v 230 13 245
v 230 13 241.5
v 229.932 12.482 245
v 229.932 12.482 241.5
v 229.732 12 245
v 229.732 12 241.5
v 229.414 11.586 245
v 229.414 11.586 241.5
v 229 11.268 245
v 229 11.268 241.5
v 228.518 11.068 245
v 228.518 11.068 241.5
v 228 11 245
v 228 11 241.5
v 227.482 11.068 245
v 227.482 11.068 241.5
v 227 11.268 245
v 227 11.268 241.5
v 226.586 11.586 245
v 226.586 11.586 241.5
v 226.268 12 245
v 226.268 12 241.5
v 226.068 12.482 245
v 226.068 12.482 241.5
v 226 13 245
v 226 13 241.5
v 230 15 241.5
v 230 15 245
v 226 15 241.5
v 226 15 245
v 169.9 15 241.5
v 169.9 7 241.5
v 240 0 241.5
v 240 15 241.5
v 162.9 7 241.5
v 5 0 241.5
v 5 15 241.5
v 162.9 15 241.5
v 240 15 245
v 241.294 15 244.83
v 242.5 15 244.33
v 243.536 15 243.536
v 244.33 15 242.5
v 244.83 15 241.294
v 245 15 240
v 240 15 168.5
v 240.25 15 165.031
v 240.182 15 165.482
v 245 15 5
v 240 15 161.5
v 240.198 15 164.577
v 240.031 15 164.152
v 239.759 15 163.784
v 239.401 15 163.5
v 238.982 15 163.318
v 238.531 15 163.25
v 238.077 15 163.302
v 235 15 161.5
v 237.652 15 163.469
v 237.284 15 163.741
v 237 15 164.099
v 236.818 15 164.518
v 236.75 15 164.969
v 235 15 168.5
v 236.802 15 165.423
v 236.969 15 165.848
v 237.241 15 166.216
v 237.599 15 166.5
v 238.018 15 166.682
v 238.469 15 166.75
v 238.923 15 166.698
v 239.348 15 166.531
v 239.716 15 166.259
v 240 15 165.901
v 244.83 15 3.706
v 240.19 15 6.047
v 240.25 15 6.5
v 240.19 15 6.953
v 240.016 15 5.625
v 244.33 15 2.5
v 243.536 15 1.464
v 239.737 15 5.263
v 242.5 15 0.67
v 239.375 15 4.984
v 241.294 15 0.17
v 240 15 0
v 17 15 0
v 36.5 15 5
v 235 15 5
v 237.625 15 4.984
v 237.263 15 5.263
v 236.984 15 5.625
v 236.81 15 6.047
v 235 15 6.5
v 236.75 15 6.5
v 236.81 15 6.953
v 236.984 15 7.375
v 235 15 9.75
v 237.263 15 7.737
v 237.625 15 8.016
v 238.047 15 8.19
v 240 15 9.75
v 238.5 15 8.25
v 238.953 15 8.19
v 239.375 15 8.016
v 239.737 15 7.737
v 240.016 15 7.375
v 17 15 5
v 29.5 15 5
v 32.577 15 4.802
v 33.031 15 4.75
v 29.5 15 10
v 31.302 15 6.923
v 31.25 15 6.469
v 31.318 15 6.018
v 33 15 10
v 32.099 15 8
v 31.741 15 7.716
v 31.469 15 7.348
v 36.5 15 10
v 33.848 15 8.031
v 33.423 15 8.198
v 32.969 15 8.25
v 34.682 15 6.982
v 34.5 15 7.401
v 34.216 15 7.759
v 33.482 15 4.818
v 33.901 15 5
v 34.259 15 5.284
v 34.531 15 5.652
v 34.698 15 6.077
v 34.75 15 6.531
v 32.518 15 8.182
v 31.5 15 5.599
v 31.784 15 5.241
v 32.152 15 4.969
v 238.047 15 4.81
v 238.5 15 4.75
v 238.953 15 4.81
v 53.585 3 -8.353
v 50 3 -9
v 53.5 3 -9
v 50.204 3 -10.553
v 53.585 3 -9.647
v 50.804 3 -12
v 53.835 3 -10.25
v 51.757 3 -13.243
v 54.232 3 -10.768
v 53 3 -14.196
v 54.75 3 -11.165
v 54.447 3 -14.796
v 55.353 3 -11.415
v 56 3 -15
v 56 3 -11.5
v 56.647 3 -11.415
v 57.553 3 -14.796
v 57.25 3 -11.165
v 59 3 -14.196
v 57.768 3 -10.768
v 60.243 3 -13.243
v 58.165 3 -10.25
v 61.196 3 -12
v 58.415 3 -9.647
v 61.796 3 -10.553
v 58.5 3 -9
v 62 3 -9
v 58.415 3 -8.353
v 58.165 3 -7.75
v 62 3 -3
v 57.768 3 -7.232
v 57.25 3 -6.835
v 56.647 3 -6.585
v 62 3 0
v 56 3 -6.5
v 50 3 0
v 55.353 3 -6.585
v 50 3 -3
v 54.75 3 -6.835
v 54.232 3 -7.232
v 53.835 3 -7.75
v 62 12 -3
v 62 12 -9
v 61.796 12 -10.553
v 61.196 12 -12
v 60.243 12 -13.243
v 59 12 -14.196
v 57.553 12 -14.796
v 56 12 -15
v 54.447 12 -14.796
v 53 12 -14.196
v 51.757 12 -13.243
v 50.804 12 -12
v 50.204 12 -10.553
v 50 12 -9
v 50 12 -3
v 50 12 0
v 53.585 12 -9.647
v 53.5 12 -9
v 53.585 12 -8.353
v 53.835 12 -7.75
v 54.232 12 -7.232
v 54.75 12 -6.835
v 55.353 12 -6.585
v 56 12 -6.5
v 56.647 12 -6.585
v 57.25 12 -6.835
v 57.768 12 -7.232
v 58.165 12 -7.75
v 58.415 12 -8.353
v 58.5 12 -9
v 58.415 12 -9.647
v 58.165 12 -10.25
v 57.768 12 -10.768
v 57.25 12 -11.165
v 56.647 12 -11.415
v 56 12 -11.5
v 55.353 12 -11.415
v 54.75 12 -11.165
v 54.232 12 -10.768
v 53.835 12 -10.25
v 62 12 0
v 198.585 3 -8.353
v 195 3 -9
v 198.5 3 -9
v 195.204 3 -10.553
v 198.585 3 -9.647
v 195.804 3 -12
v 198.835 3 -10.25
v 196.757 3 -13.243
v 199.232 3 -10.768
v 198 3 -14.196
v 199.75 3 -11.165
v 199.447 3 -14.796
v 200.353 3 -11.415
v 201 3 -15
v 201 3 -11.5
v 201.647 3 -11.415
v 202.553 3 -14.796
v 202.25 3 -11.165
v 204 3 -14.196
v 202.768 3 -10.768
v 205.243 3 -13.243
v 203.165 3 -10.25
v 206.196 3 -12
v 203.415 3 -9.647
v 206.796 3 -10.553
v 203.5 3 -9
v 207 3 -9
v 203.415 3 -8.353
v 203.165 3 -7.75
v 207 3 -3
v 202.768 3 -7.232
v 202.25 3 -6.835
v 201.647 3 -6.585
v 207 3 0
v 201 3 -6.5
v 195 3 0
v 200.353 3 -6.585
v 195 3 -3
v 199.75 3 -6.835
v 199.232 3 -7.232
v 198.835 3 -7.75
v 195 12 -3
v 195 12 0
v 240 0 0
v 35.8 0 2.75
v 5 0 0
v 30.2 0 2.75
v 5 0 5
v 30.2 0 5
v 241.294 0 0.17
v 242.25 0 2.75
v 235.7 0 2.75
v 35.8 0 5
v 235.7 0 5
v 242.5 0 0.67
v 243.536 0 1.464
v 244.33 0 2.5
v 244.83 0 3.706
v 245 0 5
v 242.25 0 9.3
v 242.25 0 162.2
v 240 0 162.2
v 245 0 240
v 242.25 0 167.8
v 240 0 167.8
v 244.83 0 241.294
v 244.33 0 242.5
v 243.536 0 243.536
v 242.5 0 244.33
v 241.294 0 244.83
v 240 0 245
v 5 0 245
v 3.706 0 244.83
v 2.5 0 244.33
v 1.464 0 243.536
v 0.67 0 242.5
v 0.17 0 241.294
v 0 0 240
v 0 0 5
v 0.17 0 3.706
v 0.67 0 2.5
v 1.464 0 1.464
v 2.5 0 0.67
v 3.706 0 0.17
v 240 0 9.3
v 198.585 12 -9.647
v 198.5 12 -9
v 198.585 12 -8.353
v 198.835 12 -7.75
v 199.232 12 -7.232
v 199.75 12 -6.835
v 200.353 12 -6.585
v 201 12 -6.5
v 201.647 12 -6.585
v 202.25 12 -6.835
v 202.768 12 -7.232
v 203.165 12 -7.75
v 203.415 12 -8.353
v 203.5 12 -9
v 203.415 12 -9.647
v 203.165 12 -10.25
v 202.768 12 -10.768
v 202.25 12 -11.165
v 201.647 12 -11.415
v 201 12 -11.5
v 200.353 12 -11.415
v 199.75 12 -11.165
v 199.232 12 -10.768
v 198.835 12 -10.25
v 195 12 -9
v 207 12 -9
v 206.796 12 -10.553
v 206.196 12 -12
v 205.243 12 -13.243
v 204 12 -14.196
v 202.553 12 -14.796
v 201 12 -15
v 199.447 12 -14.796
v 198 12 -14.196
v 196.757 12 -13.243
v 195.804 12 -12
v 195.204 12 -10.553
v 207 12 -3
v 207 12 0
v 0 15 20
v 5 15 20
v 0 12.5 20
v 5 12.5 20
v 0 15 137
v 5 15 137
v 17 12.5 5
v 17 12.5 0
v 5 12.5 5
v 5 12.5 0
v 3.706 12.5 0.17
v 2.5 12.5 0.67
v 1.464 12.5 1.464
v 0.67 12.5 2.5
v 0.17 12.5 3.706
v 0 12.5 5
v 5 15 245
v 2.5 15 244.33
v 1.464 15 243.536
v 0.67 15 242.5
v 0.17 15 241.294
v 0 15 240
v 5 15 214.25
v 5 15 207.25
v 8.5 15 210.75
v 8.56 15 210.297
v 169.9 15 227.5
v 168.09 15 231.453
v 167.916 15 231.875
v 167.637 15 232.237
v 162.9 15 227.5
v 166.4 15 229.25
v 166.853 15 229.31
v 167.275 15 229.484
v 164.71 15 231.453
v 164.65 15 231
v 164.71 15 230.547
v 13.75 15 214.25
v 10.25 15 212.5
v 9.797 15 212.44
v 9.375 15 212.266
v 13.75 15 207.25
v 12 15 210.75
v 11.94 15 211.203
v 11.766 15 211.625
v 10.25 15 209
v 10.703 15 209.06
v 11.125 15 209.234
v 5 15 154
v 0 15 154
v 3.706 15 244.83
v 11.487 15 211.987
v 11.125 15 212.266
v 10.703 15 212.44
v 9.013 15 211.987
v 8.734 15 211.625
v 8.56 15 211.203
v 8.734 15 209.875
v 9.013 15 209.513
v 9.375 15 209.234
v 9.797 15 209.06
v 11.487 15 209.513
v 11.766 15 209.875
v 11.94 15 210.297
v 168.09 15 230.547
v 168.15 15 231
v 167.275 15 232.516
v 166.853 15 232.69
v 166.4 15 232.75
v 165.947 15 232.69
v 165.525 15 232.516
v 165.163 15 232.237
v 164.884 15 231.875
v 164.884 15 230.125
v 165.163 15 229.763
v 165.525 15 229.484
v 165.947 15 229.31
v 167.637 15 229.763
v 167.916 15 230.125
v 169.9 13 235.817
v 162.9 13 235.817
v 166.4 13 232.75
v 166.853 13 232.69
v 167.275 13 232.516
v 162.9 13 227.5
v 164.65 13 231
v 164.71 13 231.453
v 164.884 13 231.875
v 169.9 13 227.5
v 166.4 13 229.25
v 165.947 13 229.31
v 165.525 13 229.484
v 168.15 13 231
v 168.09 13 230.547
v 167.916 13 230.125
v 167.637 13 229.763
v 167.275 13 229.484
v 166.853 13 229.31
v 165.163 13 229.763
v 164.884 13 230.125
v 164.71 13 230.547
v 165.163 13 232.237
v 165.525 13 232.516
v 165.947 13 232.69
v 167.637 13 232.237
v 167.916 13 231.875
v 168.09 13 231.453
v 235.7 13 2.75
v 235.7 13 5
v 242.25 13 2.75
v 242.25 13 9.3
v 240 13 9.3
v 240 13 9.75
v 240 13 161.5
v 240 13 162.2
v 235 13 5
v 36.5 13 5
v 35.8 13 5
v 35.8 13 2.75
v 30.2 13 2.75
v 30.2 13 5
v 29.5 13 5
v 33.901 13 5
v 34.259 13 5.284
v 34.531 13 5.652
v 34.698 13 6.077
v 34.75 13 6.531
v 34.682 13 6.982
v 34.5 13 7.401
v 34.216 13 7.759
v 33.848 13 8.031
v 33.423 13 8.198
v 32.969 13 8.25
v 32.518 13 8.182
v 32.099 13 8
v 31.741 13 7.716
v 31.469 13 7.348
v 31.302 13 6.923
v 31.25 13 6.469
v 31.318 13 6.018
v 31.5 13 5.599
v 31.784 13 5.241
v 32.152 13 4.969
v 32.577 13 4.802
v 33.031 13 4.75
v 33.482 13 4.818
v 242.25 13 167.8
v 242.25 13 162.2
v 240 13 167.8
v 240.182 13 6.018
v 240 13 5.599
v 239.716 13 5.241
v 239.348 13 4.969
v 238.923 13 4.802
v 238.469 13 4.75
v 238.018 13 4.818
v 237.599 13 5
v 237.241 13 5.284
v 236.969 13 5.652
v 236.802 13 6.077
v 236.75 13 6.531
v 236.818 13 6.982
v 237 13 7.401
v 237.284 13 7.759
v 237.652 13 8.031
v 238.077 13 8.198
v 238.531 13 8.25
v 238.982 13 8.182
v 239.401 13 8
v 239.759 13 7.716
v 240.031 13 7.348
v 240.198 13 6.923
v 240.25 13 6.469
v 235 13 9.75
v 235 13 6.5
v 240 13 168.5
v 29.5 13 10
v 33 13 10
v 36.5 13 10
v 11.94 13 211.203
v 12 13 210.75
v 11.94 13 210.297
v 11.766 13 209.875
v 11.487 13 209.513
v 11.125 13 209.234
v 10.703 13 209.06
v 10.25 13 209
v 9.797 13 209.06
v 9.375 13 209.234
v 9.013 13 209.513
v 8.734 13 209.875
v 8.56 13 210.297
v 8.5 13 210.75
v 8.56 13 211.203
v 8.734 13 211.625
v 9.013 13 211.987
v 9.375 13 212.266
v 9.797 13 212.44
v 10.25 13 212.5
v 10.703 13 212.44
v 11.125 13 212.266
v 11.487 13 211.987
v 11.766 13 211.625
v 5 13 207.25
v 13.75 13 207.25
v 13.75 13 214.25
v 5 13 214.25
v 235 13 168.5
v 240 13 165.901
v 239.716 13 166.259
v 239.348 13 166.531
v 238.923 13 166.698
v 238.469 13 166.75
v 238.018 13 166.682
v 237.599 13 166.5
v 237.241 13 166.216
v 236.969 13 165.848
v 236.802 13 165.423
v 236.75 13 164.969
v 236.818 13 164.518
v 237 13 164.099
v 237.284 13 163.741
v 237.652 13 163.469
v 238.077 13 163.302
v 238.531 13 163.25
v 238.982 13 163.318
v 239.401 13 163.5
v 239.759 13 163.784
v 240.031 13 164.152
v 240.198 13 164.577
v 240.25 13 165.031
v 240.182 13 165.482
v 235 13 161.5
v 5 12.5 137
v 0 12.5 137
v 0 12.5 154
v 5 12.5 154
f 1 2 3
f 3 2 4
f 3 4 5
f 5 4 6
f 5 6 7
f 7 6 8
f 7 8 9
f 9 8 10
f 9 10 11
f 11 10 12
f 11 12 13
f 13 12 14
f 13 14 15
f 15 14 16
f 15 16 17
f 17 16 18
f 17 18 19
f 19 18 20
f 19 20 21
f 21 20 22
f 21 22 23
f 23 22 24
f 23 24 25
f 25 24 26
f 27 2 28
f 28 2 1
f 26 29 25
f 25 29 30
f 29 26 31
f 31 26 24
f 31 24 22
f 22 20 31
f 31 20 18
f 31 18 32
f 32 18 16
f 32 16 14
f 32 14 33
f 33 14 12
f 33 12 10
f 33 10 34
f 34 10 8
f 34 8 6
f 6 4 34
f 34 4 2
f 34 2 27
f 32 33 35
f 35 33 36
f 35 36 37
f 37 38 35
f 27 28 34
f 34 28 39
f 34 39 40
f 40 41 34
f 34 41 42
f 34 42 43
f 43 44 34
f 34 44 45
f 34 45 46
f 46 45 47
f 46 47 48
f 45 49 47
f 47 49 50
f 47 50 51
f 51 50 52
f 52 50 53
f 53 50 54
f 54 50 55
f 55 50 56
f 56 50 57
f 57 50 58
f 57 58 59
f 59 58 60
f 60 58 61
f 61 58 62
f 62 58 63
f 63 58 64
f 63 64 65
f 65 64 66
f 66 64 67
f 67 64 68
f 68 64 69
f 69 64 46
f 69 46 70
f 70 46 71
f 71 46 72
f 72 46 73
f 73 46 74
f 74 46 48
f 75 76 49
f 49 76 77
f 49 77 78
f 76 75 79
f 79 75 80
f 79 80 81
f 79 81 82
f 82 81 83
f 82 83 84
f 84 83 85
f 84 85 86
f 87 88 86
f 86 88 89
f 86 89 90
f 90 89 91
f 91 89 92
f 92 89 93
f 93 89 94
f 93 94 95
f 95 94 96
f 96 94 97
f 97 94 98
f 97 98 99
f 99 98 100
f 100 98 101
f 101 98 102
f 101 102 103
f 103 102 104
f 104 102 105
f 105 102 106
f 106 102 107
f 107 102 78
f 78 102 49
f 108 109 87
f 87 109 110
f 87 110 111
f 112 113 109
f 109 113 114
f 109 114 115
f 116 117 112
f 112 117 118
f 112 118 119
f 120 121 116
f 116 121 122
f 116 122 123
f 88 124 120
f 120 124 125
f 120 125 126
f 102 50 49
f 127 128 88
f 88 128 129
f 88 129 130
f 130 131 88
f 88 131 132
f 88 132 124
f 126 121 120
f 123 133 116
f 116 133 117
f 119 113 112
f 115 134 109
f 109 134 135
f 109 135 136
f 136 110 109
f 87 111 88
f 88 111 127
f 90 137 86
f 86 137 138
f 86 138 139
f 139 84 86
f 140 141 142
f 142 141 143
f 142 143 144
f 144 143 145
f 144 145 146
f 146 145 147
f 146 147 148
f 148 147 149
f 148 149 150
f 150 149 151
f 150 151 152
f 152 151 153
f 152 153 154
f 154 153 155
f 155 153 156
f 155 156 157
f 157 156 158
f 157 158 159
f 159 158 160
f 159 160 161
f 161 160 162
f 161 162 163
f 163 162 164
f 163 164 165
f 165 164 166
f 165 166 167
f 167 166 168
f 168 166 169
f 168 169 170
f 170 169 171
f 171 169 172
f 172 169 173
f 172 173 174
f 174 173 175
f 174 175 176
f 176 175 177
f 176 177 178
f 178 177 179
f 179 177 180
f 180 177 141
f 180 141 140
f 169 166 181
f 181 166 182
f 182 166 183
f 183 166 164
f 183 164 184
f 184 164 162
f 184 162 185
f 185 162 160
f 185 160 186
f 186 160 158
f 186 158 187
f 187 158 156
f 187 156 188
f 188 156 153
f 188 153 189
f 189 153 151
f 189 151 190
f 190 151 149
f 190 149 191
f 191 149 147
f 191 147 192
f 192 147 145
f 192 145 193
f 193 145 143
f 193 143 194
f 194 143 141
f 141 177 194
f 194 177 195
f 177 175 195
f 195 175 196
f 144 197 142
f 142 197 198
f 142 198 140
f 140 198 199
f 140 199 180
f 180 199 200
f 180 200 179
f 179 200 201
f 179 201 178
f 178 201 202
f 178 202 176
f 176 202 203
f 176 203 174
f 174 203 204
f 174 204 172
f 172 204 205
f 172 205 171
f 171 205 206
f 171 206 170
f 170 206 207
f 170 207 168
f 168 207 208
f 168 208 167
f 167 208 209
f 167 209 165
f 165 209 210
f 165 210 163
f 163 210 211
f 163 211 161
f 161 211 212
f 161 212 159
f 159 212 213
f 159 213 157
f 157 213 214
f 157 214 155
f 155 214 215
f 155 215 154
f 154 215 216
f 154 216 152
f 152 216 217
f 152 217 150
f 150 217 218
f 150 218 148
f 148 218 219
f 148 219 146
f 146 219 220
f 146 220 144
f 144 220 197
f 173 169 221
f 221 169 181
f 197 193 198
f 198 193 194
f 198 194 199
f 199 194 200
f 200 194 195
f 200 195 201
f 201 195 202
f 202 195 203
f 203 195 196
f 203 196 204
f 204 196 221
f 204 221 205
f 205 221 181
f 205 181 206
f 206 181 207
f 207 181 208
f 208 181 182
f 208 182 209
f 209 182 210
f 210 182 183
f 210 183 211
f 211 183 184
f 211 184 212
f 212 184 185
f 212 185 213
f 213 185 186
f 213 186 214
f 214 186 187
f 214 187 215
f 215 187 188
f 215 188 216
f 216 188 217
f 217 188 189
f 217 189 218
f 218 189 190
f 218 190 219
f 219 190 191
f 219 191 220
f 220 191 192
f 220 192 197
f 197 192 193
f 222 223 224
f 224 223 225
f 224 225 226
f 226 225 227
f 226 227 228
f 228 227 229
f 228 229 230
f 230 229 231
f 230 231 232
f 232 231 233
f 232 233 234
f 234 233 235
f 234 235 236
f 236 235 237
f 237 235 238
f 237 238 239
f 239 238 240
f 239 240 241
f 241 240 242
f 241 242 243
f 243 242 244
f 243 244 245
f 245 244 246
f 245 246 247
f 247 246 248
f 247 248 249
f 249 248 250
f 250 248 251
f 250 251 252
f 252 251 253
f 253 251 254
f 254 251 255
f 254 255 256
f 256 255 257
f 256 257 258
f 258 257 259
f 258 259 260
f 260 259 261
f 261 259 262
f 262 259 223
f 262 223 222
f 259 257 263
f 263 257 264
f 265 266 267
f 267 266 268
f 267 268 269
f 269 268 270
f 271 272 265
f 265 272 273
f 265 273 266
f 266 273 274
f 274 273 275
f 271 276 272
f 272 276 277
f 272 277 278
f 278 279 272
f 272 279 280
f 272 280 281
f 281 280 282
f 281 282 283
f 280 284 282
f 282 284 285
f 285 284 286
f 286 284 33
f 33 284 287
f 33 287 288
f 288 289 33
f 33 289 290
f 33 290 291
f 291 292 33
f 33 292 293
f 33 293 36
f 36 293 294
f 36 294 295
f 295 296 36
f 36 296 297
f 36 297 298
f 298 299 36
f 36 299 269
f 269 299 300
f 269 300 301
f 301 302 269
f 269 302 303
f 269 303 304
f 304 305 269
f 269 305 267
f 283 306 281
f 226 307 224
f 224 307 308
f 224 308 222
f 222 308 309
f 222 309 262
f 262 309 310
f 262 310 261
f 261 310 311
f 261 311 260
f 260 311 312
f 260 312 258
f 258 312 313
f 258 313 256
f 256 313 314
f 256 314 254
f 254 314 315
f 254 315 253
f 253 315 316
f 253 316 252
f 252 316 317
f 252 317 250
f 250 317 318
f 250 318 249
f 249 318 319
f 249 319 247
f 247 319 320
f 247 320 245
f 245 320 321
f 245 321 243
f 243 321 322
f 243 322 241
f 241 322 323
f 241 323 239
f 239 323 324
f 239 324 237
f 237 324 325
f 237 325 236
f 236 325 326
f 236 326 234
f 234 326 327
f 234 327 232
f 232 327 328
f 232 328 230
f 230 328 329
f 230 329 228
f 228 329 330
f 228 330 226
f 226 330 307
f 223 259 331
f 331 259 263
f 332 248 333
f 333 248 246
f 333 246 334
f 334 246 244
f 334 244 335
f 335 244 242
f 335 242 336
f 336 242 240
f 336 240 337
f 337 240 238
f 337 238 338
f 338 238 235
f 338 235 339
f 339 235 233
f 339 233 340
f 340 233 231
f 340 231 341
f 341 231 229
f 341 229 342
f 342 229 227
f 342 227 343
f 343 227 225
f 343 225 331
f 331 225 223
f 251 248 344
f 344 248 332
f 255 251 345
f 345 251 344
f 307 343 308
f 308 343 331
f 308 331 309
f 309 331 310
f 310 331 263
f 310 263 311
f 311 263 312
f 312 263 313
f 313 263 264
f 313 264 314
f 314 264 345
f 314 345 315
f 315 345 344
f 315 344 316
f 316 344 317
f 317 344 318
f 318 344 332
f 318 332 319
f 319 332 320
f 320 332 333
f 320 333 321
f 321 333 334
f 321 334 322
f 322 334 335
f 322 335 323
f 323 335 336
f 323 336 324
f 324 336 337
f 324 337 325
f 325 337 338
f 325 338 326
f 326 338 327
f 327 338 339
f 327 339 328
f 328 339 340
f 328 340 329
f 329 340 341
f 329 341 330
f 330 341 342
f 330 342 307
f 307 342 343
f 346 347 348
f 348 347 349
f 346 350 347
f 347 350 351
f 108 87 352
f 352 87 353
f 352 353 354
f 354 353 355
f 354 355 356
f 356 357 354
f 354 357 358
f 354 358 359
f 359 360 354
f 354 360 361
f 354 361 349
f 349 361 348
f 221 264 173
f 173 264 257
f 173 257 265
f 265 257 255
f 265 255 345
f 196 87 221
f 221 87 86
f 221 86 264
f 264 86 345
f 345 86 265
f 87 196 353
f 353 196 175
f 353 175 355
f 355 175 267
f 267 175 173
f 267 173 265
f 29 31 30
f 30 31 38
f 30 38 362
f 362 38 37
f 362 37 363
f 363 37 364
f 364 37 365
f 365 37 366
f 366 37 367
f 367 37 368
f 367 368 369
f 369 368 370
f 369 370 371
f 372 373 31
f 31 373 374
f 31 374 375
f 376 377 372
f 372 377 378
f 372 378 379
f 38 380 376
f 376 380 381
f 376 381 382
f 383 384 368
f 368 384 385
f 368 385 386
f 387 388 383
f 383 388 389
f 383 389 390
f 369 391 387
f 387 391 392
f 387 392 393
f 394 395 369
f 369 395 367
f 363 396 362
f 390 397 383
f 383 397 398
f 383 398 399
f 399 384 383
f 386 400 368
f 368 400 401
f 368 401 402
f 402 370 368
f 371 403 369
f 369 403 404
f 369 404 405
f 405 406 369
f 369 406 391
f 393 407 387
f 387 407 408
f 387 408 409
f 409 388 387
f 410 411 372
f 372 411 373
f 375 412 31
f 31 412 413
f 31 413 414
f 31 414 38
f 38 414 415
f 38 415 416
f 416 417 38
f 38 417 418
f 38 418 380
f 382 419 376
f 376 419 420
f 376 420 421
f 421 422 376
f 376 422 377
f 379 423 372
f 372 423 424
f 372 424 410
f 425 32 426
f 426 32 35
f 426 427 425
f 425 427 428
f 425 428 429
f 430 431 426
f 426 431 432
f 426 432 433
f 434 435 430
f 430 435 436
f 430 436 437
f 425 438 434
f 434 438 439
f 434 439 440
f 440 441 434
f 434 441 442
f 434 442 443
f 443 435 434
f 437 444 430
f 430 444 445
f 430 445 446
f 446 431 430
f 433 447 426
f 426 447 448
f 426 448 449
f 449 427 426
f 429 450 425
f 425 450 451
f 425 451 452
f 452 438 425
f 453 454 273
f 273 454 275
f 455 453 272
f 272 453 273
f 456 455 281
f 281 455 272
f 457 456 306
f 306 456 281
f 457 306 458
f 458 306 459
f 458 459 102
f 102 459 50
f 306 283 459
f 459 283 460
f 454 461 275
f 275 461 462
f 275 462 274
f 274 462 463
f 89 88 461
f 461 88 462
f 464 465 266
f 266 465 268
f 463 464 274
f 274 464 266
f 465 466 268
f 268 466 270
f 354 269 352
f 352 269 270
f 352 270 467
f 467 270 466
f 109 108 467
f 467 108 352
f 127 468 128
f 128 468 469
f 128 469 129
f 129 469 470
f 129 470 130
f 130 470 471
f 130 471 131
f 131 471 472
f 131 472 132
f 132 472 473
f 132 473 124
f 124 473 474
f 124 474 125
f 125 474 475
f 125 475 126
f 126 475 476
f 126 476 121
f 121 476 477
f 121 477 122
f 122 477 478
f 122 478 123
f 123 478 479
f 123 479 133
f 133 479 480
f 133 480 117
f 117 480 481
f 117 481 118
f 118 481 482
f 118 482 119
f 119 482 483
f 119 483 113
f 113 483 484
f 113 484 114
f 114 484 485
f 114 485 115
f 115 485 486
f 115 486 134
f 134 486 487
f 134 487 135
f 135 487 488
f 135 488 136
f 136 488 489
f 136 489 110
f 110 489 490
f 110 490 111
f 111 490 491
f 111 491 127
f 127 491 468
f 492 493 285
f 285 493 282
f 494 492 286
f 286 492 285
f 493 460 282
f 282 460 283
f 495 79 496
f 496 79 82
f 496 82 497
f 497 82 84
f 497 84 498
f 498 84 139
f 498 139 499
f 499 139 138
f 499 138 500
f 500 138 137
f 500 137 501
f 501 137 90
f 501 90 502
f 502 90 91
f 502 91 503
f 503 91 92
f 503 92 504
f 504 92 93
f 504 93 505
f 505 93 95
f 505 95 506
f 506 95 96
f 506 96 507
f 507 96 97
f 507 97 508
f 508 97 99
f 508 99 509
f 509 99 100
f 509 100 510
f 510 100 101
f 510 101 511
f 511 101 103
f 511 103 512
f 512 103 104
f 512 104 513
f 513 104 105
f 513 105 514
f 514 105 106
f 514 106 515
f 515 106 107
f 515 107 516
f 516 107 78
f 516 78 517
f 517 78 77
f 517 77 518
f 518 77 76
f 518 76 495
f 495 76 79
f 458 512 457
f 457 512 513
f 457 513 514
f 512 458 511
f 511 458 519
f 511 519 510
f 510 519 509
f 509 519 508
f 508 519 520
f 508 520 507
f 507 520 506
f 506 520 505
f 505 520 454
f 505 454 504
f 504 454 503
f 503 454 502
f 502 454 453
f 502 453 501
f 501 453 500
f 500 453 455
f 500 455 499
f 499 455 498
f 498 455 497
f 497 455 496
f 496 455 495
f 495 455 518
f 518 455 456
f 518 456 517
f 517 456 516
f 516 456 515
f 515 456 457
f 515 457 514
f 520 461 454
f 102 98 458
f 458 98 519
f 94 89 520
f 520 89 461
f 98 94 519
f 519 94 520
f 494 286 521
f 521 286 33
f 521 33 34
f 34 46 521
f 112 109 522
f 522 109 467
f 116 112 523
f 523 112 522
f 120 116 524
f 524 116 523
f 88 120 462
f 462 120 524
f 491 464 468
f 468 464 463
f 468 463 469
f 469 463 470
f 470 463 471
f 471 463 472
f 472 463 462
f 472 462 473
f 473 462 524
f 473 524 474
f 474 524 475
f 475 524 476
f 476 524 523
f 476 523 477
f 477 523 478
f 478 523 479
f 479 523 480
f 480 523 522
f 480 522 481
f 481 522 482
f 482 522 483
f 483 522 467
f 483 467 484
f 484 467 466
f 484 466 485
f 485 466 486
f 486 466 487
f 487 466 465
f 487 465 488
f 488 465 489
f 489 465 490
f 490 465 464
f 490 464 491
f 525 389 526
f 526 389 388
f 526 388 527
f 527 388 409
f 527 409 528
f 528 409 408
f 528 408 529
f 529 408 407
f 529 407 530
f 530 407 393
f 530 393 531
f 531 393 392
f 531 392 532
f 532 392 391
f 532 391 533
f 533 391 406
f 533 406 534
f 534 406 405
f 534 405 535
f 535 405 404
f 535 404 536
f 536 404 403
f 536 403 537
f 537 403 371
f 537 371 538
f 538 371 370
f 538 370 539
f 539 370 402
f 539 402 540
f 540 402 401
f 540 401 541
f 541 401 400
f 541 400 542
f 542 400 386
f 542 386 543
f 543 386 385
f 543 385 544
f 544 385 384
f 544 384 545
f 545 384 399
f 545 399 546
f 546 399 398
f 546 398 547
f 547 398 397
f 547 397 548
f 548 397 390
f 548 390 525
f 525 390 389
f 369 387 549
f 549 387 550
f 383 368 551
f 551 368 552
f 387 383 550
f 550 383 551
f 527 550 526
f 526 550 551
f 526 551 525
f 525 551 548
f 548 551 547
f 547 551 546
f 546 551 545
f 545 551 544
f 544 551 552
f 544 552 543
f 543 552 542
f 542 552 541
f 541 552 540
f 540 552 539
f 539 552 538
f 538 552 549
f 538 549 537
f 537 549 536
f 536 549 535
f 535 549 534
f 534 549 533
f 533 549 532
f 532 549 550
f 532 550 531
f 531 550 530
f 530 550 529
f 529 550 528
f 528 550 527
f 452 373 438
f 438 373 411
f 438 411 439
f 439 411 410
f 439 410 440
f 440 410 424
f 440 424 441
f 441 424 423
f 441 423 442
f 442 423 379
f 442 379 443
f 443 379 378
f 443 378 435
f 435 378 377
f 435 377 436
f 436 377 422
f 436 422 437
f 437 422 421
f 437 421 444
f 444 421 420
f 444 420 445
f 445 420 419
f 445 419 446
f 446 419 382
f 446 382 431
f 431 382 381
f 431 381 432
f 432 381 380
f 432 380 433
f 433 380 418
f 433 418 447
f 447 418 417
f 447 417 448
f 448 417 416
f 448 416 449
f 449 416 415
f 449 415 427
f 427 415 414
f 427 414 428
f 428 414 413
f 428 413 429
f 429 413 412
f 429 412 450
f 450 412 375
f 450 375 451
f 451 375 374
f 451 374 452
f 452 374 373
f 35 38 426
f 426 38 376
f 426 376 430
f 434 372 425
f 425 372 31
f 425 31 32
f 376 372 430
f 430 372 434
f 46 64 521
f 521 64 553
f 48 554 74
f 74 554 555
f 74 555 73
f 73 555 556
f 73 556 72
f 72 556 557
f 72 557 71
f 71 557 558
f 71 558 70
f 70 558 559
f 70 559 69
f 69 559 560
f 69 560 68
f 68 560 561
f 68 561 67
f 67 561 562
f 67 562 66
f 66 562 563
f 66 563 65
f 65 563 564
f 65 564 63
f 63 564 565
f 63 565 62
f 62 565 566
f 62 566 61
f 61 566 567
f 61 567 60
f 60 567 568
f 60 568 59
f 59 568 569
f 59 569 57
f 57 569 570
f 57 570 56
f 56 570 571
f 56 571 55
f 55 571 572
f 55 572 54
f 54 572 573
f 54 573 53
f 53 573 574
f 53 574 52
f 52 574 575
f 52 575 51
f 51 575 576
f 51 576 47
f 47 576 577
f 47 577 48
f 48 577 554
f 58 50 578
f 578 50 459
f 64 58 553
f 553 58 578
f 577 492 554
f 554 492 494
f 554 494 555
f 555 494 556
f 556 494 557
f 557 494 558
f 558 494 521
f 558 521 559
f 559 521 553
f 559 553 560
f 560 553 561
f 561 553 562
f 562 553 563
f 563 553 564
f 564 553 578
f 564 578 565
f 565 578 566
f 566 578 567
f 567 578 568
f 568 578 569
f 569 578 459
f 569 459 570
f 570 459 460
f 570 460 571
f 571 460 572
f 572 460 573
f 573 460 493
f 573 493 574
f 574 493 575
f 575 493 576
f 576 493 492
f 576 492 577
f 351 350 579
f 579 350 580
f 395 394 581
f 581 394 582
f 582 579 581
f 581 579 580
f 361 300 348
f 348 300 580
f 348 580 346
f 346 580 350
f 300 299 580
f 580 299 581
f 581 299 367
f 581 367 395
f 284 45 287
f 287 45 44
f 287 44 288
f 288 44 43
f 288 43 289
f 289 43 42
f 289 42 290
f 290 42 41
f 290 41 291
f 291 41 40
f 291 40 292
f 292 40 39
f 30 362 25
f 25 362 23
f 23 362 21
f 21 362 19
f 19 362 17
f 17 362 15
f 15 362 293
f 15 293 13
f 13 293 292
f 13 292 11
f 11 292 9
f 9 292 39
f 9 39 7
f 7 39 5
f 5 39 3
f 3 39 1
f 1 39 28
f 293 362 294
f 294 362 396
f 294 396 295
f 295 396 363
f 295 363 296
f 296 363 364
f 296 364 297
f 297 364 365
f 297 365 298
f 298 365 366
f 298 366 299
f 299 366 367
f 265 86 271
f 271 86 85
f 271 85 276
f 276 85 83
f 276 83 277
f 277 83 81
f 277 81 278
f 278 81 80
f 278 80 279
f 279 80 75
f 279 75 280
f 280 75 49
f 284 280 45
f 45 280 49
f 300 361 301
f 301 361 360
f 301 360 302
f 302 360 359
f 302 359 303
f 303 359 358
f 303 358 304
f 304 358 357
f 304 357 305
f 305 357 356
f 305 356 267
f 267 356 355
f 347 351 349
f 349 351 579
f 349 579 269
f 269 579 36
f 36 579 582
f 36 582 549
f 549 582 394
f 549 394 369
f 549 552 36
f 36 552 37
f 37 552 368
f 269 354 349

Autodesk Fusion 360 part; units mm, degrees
sketch "Sketch1" plane through (0, 0, 0) normal (0, 1, 0) x (1, 0, 0)
  line L0 (0, 0) -> (245, 0)
  line L1 (245, 0) -> (245, -245)
  line L2 (245, -245) -> (0, -245)
  line L3 (0, -245) -> (0, 0)
  line L4 (0, 0) -> (5, 0)
  line L5 (5, 0) -> (5, -5)
  line L6 (245, -245) -> (245, -250)
  line L7 (245, -240) -> (240, -240)
  line L8 (240, -240) -> (5, -240)
  line L9 (5, -240) -> (5, -5)
  line L10 (5, -5) -> (240, -5)
  line L11 (240, -5) -> (240, -240)
  dimension "d1" = 245
  dimension "d2" = 245
  dimension "d3" = 5
  dimension "d4" = 5
  dimension "d5" = 5
extrude "Extrude1" add sketch "Sketch1" along normal blind 15 contours L0 L1 L2 L3 L4 L5 L7 L8 L9 | L0 L1 L5 L7 L10 L11
fillet "Fillet1" radius 5 4 edges at (0, 7.5, 0) (245, 7.5, 0) (0, 7.5, 245) (245, 7.5, 245)
sketch "Sketch2" plane through (0, 15, 0) normal (0, 1, 0) x (-1, 0, 0)
  line L0 (-5, 5) -> (-240, 5)
  line L1 (-240, 5) -> (-240, 240)
  line L2 (-240, 240) -> (-5, 240)
  line L3 (-5, 240) -> (-5, 5)
  arc A0 (-240, 245) -> (-245, 240) centre (-240, 240) ccw
  line L4 (-245, 240) -> (-245, 5)
  arc A1 (-245, 5) -> (-240, 0) centre (-240, 5) ccw
  line L5 (-240, 0) -> (-5, 0)
  arc A2 (-5, 0) -> (0, 5) centre (-5, 5) ccw
  line L6 (0, 5) -> (0, 240)
  arc A3 (0, 240) -> (-5, 245) centre (-5, 240) ccw
  line L7 (-5, 245) -> (-240, 245)
  line L8 (-245, 6.2462) -> (-238.5, 6.2462)
  line L9 (-238.7853, 0) -> (-238.7853, 6.5)
  line L10 (-238.7853, 6.5) -> (-238.5, 6.5)
  line L11 (-238.5, 6.5) -> (-238.5, 6.2462)
  circle A4 centre (-238.5, 6.5) radius 1.75
  line L12 (-20, 0) -> (-20, 6.5)
  line L13 (-20, 6.5) -> (3, 6.5)
  line L14 (0, 6.5) -> (-33, 6.5)
  circle A5 centre (-33, 6.5) radius 1.75
  line L15 (-238.5, 8.25) -> (-238.5, 9.75)
  line L16 (-238.5, 6.5) -> (-235, 6.4999)
  line L17 (-238.5, 9.75) -> (-240, 9.75)
  line L18 (-235, 6.4999) -> (-234.9999, 9.75)
  line L19 (-234.9999, 9.75) -> (-238.5, 9.75)
  line L20 (-235, 6.4999) -> (-235, 5)
  line L21 (-235, 5) -> (-240, 5)
  line L22 (-33, 6.5) -> (-33, 10)
  line L23 (-33, 6.5) -> (-36.5, 6.5)
  line L24 (-33, 6.5) -> (-36.5, 6.5)
  line L25 (-36.5, 6.5) -> (-36.5, 10)
  line L26 (-36.5, 10) -> (-33, 10)
  line L27 (-33, 10) -> (-29.5, 10)
  line L28 (-29.5, 10) -> (-29.5, 5)
  line L29 (-36.5, 6.5) -> (-36.5, 5)
  line L30 (0, 235) -> (-10.25, 235)
  line L31 (-10.25, 235) -> (-10.25, 245)
  line L32 (-10.25, 245) -> (-10.25, 210.75)
  circle A6 centre (-10.25, 210.75) radius 1.75
  line L33 (-10.25, 210.75) -> (-10.25, 207.25)
  line L34 (-10.25, 210.75) -> (-13.75, 210.75)
  line L35 (-10.25, 210.75) -> (-10.25, 207.25)
  line L36 (-10.25, 210.75) -> (-10.25, 214.25)
  line L37 (-10.25, 214.25) -> (-13.75, 214.25)
  line L38 (-13.75, 214.25) -> (-13.75, 210.75)
  line L39 (-13.75, 210.75) -> (-13.75, 207.25)
  line L40 (-13.75, 207.25) -> (-5, 207.25)
  line L41 (-10.25, 214.25) -> (-5, 214.25)
  line L42 (-198.5173, 245) -> (-198.5173, 238.5)
  line L43 (-245, 237.9591) -> (-166.4, 237.9591)
  line L44 (-166.4, 237.9591) -> (-166.4, 245)
  line L45 (-166.4, 245) -> (-166.4, 231)
  circle A7 centre (-166.4, 231) radius 1.75
  line L46 (-166.4, 231) -> (-166.4, 227.5)
  line L47 (-166.4, 227.5) -> (-162.9, 227.5)
  line L48 (-166.4, 227.5) -> (-169.9, 227.5)
  line L49 (-169.9, 227.5) -> (-169.9, 240)
  line L50 (-162.9, 227.5) -> (-162.9, 240)
  line L51 (-240, 245) -> (-240, 165)
  line L52 (-240, 165) -> (-245, 165)
  line L53 (-245, 165) -> (-238.5, 165)
  circle A8 centre (-238.5, 165) radius 1.75
  line L54 (-238.5, 165) -> (-235, 165)
  line L55 (-235, 165) -> (-235, 161.5)
  line L56 (-235, 165) -> (-235, 168.5)
  line L57 (-235, 168.5) -> (-240, 168.5)
  line L58 (-235, 161.5) -> (-240, 161.5)
  line L59 (-5, 245) -> (-5, 154)
  line L60 (-5, 154) -> (-5, 137)
  line L61 (-5, 137) -> (0, 137)
  line L62 (0, 154) -> (-5, 154)
  line L63 (0, 154) -> (0, 137)
  dimension "d9" = 6.5
  dimension "d10" = 6.5
  dimension "d11" = 3.5
  dimension "d12" = 6.5
  dimension "d13" = 33
  dimension "d14" = 3.5
  dimension "d15" = 1.5
  dimension "d16" = 3.5
  dimension "d21" = 3.5
  dimension "d22" = 3.5
  dimension "d23" = 3.5
  dimension "d24" = 3.5
  dimension "d29" = 10.25
  dimension "d30" = 34.25
  dimension "d31" = 3.5
  dimension "d32" = 3.5
  dimension "d33" = 3.5
  dimension "d34" = 3.5
  dimension "d35" = 3.5
  dimension "d36" = 3.5
  dimension "d37" = 3.5
  dimension "d40" = 6.5
  dimension "d41" = 78.6
  dimension "d42" = 14
  dimension "d43" = 3.5
  dimension "d44" = 3.5
  dimension "d45" = 3.5
  dimension "d46" = 3.5
  dimension "d49" = 80
  dimension "d50" = 6.5
  dimension "d51" = 3.5
  dimension "d52" = 3.5
  dimension "d53" = 3.5
  dimension "d54" = 3.5
  dimension "d55" = 90
  dimension "d82" = 91
  dimension "d83" = 17
extrude "Extrude16" cut sketch "Sketch2" against normal blind 2.5 contours L3 L6 L60 L61 L62 L63
extrude "Extrude8" add sketch "Sketch2" against normal blind 2 contours L1 A8 L54 L55 L58 | L1 L51 A8 L54 L56 L57
extrude "Extrude7" add sketch "Sketch2" against normal blind 2 contours L2 L43 L44 L45 L49 | L43 L45 A7 L46 L48 L49 | L2 L44 L45 A7 L46 L47 L50
extrude "Extrude6" add sketch "Sketch2" against normal blind 2 contours L3 L32 A6 L33 L35 L36 L40 L41 L59 | A6 L33 L34 L35 L39 L40 | L32 A6 L34 L36 L37 L38
extrude "Extrude4" add sketch "Sketch2" against normal blind 2 contours L0 A5 L23 L24 L29 | A5 L22 L23 L24 L25 L26 | L0 L14 A5 L28 | L14 A5 L22 L27 L28
extrude "Extrude2" add sketch "Sketch2" against normal blind 2 contours L0 A4 L16 L20 L21 | L0 L8 L9 L11 A4 L16 L21 | A4 L15 L16 L18 L19 | L0 L1 L8 L9 A4 L21 | L1 L8 L9 L10 A4 L16 | L0 L1 A4 L21 | L8 L9 L10 L11 | L1 A4 L15 L17
extrude "Extrude3" cut sketch "Sketch2" against normal blind 5 contours L0 L9 A4 L21 | L0 L8 L9 L11 A4 L16 L21 | L0 L9 A4 L21 | L0 L1 L8 L9 A4 L21 | L1 L8 L9 L10 A4 L16 | L8 L9 L10 L11 | L1 L8 A4 | L1 L8 A4
extrude "Extrude5" cut sketch "Sketch2" against normal blind 5 contours L0 A5
sketch "Sketch3" plane through (0, 0, 0) normal (0, -1, 0) x (1, 0, 0)
  arc A0 (245, 240) -> (240, 245) centre (240, 240) ccw
  line L0 (240, 245) -> (5, 245)
  arc A1 (5, 245) -> (0, 240) centre (5, 240) ccw
  line L1 (0, 240) -> (0, 5)
  arc A2 (0, 5) -> (5, 0) centre (5, 5) ccw
  line L2 (5, 0) -> (240, 0)
  arc A3 (240, 0) -> (245, 5) centre (240, 5) ccw
  line L3 (245, 5) -> (245, 240)
  line L4 (240, 5) -> (5, 5)
  line L5 (5, 5) -> (5, 240)
  line L6 (5, 240) -> (240, 240)
  line L7 (240, 240) -> (240, 5)
  line L8 (240.25, 165) -> (242.25, 165)
  line L9 (242.25, 165) -> (242.25, 167.8)
  line L10 (242.25, 165) -> (242.25, 162.2)
  line L11 (242.25, 167.8) -> (240, 167.8)
  line L12 (242.25, 162.2) -> (240, 162.2)
  line L13 (240, 167.8) -> (240, 162.2)
  dimension "d58" = 2
  dimension "d59" = 2.8
  dimension "d60" = 2.8
extrude "Extrude10" cut sketch "Sketch3" against normal up to surface (13 mm away) contours L7 L9 L10 L11 L12 L13
extrude "Extrude9" cut sketch "Sketch2" against normal blind 10 contours L1 L52 L53 A8 | L1 L51 L52 L53 A8
sketch "Sketch4" plane through (0, 0, 0) normal (0, -1, 0) x (1, 0, 0)
  line L0 (240, 167.8) -> (242.25, 167.8)
  line L1 (242.25, 167.8) -> (242.25, 162.2)
  line L2 (242.25, 162.2) -> (240, 162.2)
  line L3 (240, 162.2) -> (240, 5)
  line L4 (240, 5) -> (5, 5)
  line L5 (5, 5) -> (5, 240)
  line L6 (5, 240) -> (240, 240)
  line L7 (240, 240) -> (240, 167.8)
  arc A0 (245, 240) -> (240, 245) centre (240, 240) ccw
  line L8 (240, 245) -> (5, 245)
  arc A1 (5, 245) -> (0, 240) centre (5, 240) ccw
  line L9 (0, 240) -> (0, 5)
  arc A2 (0, 5) -> (5, 0) centre (5, 5) ccw
  line L10 (5, 0) -> (240, 0)
  arc A3 (240, 0) -> (245, 5) centre (240, 5) ccw
  line L11 (245, 5) -> (245, 240)
  line L12 (33, 4.75) -> (33, 2.75)
  line L13 (33, 2.75) -> (35.8, 2.75)
  line L14 (33, 2.75) -> (30.2, 2.75)
  line L15 (30.2, 2.75) -> (30.2, 5)
  line L16 (35.8, 2.75) -> (35.8, 5)
  line L17 (30.2, 5) -> (35.8, 5)
  dimension "d65" = 2
  dimension "d66" = 2.8
  dimension "d67" = 2.8
extrude "Extrude11" cut sketch "Sketch4" against normal up to surface (13 mm away) contours L4 L13 L14 L15 L16 L17
sketch "Sketch5" plane through (0, 0, 0) normal (0, -1, 0) x (1, 0, 0)
  line L0 (30.2, 2.75) -> (30.2, 5)
  line L1 (30.2, 5) -> (5, 5)
  line L2 (5, 5) -> (5, 240)
  line L3 (5, 240) -> (240, 240)
  line L4 (240, 240) -> (240, 167.8)
  line L5 (240, 167.8) -> (242.25, 167.8)
  line L6 (242.25, 167.8) -> (242.25, 162.2)
  line L7 (242.25, 162.2) -> (240, 162.2)
  line L8 (240, 162.2) -> (240, 5)
  line L9 (240, 5) -> (35.8, 5)
  line L10 (35.8, 5) -> (35.8, 2.75)
  line L11 (35.8, 2.75) -> (30.2, 2.75)
  arc A0 (245, 240) -> (240, 245) centre (240, 240) ccw
  line L12 (240, 245) -> (5, 245)
  arc A1 (5, 245) -> (0, 240) centre (5, 240) ccw
  line L13 (0, 240) -> (0, 5)
  arc A2 (0, 5) -> (5, 0) centre (5, 5) ccw
  line L14 (5, 0) -> (240, 0)
  arc A3 (240, 0) -> (245, 5) centre (240, 5) ccw
  line L15 (245, 5) -> (245, 240)
  line L16 (238.5, 4.75) -> (238.5, 2.75)
  line L17 (238.5, 2.75) -> (235.7, 2.75)
  line L18 (235.7, 2.75) -> (235.7, 5)
  line L19 (240.25, 6.5) -> (242.25, 6.5)
  line L20 (242.25, 6.5) -> (242.25, 9.3)
  line L21 (242.25, 6.5) -> (242.25, 2)
  line L22 (238.5, 2.75) -> (242.25, 2.75)
  line L23 (235.7, 5) -> (239, 5)
  line L24 (242.25, 9.3) -> (240, 9.3)
  line L25 (240, 5.8883) -> (239, 5)
  dimension "d70" = 2
  dimension "d71" = 2.8
  dimension "d72" = 2
  dimension "d73" = 2.8
extrude "Extrude12" cut sketch "Sketch5" against normal up to surface (13 mm away) contours L8 L9 L17 L18 L20 L21 L22 L23 L24 | L8 L9 L25
sketch "Sketch6" plane through (0, 0, 0) normal (-1, 0, 0) x (0, 0, 1)
  line L0 (240, 0) -> (240, 15)
  line L1 (137, 15) -> (5, 15)
  line L2 (5, 15) -> (5, 0)
  line L3 (5, 0) -> (240, 0)
  line L4 (240, 10) -> (122.5, 10)
  line L5 (122.5, 10) -> (122.5, 23)
  line L6 (122.5, 10) -> (122.5, -7.4415)
  line L7 (122.5, -7.4415) -> (-12.4248, -7.4415)
  line L8 (-12.4248, -7.4415) -> (-12.4248, 20)
  line L9 (-12.4248, 20) -> (122.5, 23)
  line L10 (154, 15) -> (154, 12.5)
  line L11 (154, 12.5) -> (137, 12.5)
  line L12 (137, 12.5) -> (137, 15)
  line L13 (240, 15) -> (154, 15)
extrude "Extrude14" cut 1 faces at (57.6333, 9.3333, 240) along direction (0, 0, 1) blind 1.5
sketch "Sketch7" plane through (169.9, 0, 0) normal (1, 0, 0) x (0, 0, -1)
  line L0 (-227.5, 15) -> (-241.5, 15)
  line L1 (-241.5, 15) -> (-241.5, 13)
  line L2 (-241.5, 13) -> (-227.5, 13)
  line L3 (-227.5, 13) -> (-227.5, 15)
  line L4 (-235.8167, 13) -> (-241.5, 13)
  line L5 (-241.5, 13) -> (-241.5, 9)
  line L6 (-241.5, 9) -> (-241.5, 7)
  line L7 (-241.5, 7) -> (-235.8167, 13)
extrude "Extrude15" add sketch "Sketch7" against normal blind 7 contours L2 L4 L5 L6 L7
sketch "Sketch8" plane through (0, 15, 0) normal (0, 1, 0) x (-1, 0, 0)
  line L0 (-169.9, 241.5) -> (-169.9, 227.5)
  line L1 (-169.9, 227.5) -> (-162.9, 227.5)
  line L2 (-162.9, 227.5) -> (-162.9, 241.5)
  line L3 (-162.9, 241.5) -> (-5, 241.5)
  line L4 (-5, 241.5) -> (-5, 214.25)
  line L5 (-5, 214.25) -> (-13.75, 214.25)
  line L6 (-13.75, 214.25) -> (-13.75, 207.25)
  line L7 (-13.75, 207.25) -> (-5, 207.25)
  line L8 (-5, 207.25) -> (-5, 154)
  line L9 (-5, 154) -> (0, 154)
  line L10 (0, 154) -> (0, 240)
  arc A0 (0, 240) -> (-5, 245) centre (-5, 240) ccw
  line L11 (-5, 245) -> (-240, 245)
  arc A1 (-240, 245) -> (-245, 240) centre (-240, 240) ccw
  line L12 (-245, 240) -> (-245, 5)
  arc A2 (-245, 5) -> (-240, 0) centre (-240, 5) ccw
  line L13 (-240, 0) -> (-5, 0)
  arc A3 (-5, 0) -> (0, 5) centre (-5, 5) ccw
  line L14 (0, 5) -> (0, 137)
  line L15 (0, 137) -> (-5, 137)
  line L16 (-5, 137) -> (-5, 5)
  line L17 (-5, 5) -> (-29.5, 5)
  line L18 (-29.5, 5) -> (-29.5, 10)
  line L19 (-29.5, 10) -> (-33, 10)
  line L20 (-33, 10) -> (-36.5, 10)
  line L21 (-36.5, 10) -> (-36.5, 5)
  line L22 (-36.5, 5) -> (-235, 5)
  line L23 (-235, 5) -> (-235, 6.4999)
  line L24 (-235, 6.4999) -> (-234.9999, 9.75)
  line L25 (-234.9999, 9.75) -> (-240, 9.75)
  line L26 (-240, 9.75) -> (-240, 161.5)
  line L27 (-240, 161.5) -> (-235, 161.5)
  line L28 (-235, 161.5) -> (-235, 168.5)
  line L29 (-235, 168.5) -> (-240, 168.5)
  line L30 (-240, 168.5) -> (-240, 241.5)
  line L31 (-240, 241.5) -> (-169.9, 241.5)
  circle A4 centre (-238.5, 165) radius 1.75
  circle A5 centre (-166.4, 231) radius 1.75
  circle A6 centre (-10.25, 210.75) radius 1.75
  circle A7 centre (-238.5, 6.5) radius 1.75
  circle A8 centre (-33, 6.5) radius 1.75
  line L32 (0, 5) -> (-17, 5)
  line L33 (-17, 0) -> (0, 0)
  line L34 (0, 0) -> (0, 5)
  line L35 (-17, 5) -> (-17, 0)
  dimension "d86" = 17
extrude "Extrude17" cut sketch "Sketch8" against normal blind 2.5 contours L13 A3 L17 L32 L33 L35
sketch "Sketch9" plane through (0, 15, 0) normal (0, 1, 0) x (-1, 0, 0)
  line L0 (-5, 5) -> (0, 5)
  line L1 (0, 5) -> (0, 137)
  line L2 (0, 137) -> (-5, 137)
  line L3 (-5, 137) -> (-5, 5)
  line L4 (0, 0) -> (0, 20)
  line L5 (-5, 20) -> (0, 20)
  line L6 (-5, 20) -> (-5, 0)
  line L7 (-5, 0) -> (0, 0)
  dimension "d89" = 20
extrude "Extrude18" cut sketch "Sketch9" against normal blind 2.5 contours L0 L1 L3 L4 L5 L6
sketch "Sketch10" plane through (0, 0, 0) normal (0, -1, 0) x (1, 0, 0)
  line L0 (240, 241.5) -> (240, 167.8)
  line L1 (240, 167.8) -> (242.25, 167.8)
  line L2 (242.25, 167.8) -> (242.25, 162.2)
  line L3 (242.25, 162.2) -> (240, 162.2)
  line L4 (240, 162.2) -> (240, 9.3)
  line L5 (240, 9.3) -> (242.25, 9.3)
  line L6 (242.25, 9.3) -> (242.25, 2.75)
  line L7 (242.25, 2.75) -> (235.7, 2.75)
  line L8 (235.7, 2.75) -> (235.7, 5)
  line L9 (235.7, 5) -> (35.8, 5)
  line L10 (35.8, 5) -> (35.8, 2.75)
  line L11 (35.8, 2.75) -> (30.2, 2.75)
  line L12 (30.2, 2.75) -> (30.2, 5)
  line L13 (30.2, 5) -> (5, 5)
  line L14 (5, 5) -> (5, 241.5)
  line L15 (5, 241.5) -> (240, 241.5)
  arc A0 (245, 240) -> (240, 245) centre (240, 240) ccw
  line L16 (240, 245) -> (5, 245)
  arc A1 (5, 245) -> (0, 240) centre (5, 240) ccw
  line L17 (0, 240) -> (0, 5)
  arc A2 (0, 5) -> (5, 0) centre (5, 5) ccw
  line L18 (5, 0) -> (240, 0)
  arc A3 (240, 0) -> (245, 5) centre (240, 5) ccw
  line L19 (245, 5) -> (245, 240)
  line L20 (245, 0) -> (195, 0)
  line L21 (195, 0) -> (207, 0)
  line L22 (207, 0) -> (207, -3)
  line L23 (207, -3) -> (195, -3)
  line L24 (195, -3) -> (195, 0)
  line L25 (201, -3) -> (201, -9)
  circle A4 centre (201, -9) radius 2.5
  circle A5 centre (201, -9) radius 6
  line L26 (207, -3) -> (207, -9)
  line L27 (195, -3) -> (195, -9)
  dimension "d92" = 50
  dimension "d93" = 12
  dimension "d94" = 3
  dimension "d95" = 6
  dimension "d96" = 5
extrude "Extrude19" add sketch "Sketch10" against normal blind 12 contours L18 L20 L21 L22 L23 L24 | L23 A5 L26 | L23 A5 L27 | A5
sketch "Sketch13" plane through (0, 0, 0) normal (0, -1, 0) x (1, 0, 0)
  circle A0 centre (201, -9) radius 2.5
  line L0 (240, 241.5) -> (240, 167.8)
  line L1 (240, 167.8) -> (242.25, 167.8)
  line L2 (242.25, 167.8) -> (242.25, 162.2)
  line L3 (242.25, 162.2) -> (240, 162.2)
  line L4 (240, 162.2) -> (240, 9.3)
  line L5 (240, 9.3) -> (242.25, 9.3)
  line L6 (242.25, 9.3) -> (242.25, 2.75)
  line L7 (242.25, 2.75) -> (235.7, 2.75)
  line L8 (235.7, 2.75) -> (235.7, 5)
  line L9 (235.7, 5) -> (35.8, 5)
  line L10 (35.8, 5) -> (35.8, 2.75)
  line L11 (35.8, 2.75) -> (30.2, 2.75)
  line L12 (30.2, 2.75) -> (30.2, 5)
  line L13 (30.2, 5) -> (5, 5)
  line L14 (5, 5) -> (5, 241.5)
  line L15 (5, 241.5) -> (240, 241.5)
  arc A1 (245, 240) -> (240, 245) centre (240, 240) ccw
  line L16 (240, 245) -> (5, 245)
  arc A2 (5, 245) -> (0, 240) centre (5, 240) ccw
  line L17 (0, 240) -> (0, 5)
  arc A3 (0, 5) -> (5, 0) centre (5, 5) ccw
  line L18 (5, 0) -> (195, 0)
  line L19 (195, 0) -> (195, -3)
  line L20 (195, -3) -> (195, -9)
  arc A4 (195, -9) -> (207, -9) centre (201, -9) ccw
  line L21 (207, -9) -> (207, -3)
  line L22 (207, -3) -> (207, 0)
  line L23 (207, 0) -> (240, 0)
  arc A5 (240, 0) -> (245, 5) centre (240, 5) ccw
  line L24 (245, 5) -> (245, 240)
sketch "Sketch11" plane through (0, 0, 0) normal (0, -1, 0) x (1, 0, 0)
  circle A0 centre (201, -9) radius 2.5
  line L0 (240, 241.5) -> (240, 167.8)
  line L1 (240, 167.8) -> (242.25, 167.8)
  line L2 (242.25, 167.8) -> (242.25, 162.2)
  line L3 (242.25, 162.2) -> (240, 162.2)
  line L4 (240, 162.2) -> (240, 9.3)
  line L5 (240, 9.3) -> (242.25, 9.3)
  line L6 (242.25, 9.3) -> (242.25, 2.75)
  line L7 (242.25, 2.75) -> (235.7, 2.75)
  line L8 (235.7, 2.75) -> (235.7, 5)
  line L9 (235.7, 5) -> (35.8, 5)
  line L10 (35.8, 5) -> (35.8, 2.75)
  line L11 (35.8, 2.75) -> (30.2, 2.75)
  line L12 (30.2, 2.75) -> (30.2, 5)
  line L13 (30.2, 5) -> (5, 5)
  line L14 (5, 5) -> (5, 241.5)
  line L15 (5, 241.5) -> (240, 241.5)
  arc A1 (245, 240) -> (240, 245) centre (240, 240) ccw
  line L16 (240, 245) -> (5, 245)
  arc A2 (5, 245) -> (0, 240) centre (5, 240) ccw
  line L17 (0, 240) -> (0, 5)
  arc A3 (0, 5) -> (5, 0) centre (5, 5) ccw
  line L18 (5, 0) -> (195, 0)
  line L19 (195, 0) -> (195, -3)
  line L20 (195, -3) -> (195, -9)
  arc A4 (195, -9) -> (207, -9) centre (201, -9) ccw
  line L21 (207, -9) -> (207, -3)
  line L22 (207, -3) -> (207, 0)
  line L23 (207, 0) -> (240, 0)
  arc A5 (240, 0) -> (245, 5) centre (240, 5) ccw
  line L24 (245, 5) -> (245, 240)
  line L25 (207, 0) -> (195, 0)
extrude "Extrude20" cut sketch "Sketch11" against normal blind 3 contours L19 L20 A4 L21 L22 L25
sketch "Sketch12" plane through (0, 0, 0) normal (0, -1, 0) x (1, 0, 0)
  line L0 (5, 0) -> (240, 0)
  arc A0 (240, 0) -> (245, 5) centre (240, 5) ccw
  line L1 (245, 5) -> (245, 240)
  arc A1 (245, 240) -> (240, 245) centre (240, 240) ccw
  line L2 (240, 245) -> (5, 245)
  arc A2 (5, 245) -> (0, 240) centre (5, 240) ccw
  line L3 (0, 240) -> (0, 5)
  arc A3 (0, 5) -> (5, 0) centre (5, 5) ccw
  line L4 (240, 241.5) -> (240, 167.8)
  line L5 (240, 167.8) -> (242.25, 167.8)
  line L6 (242.25, 167.8) -> (242.25, 162.2)
  line L7 (242.25, 162.2) -> (240, 162.2)
  line L8 (240, 162.2) -> (240, 9.3)
  line L9 (240, 9.3) -> (242.25, 9.3)
  line L10 (242.25, 9.3) -> (242.25, 2.75)
  line L11 (242.25, 2.75) -> (235.7, 2.75)
  line L12 (235.7, 2.75) -> (235.7, 5)
  line L13 (235.7, 5) -> (35.8, 5)
  line L14 (35.8, 5) -> (35.8, 2.75)
  line L15 (35.8, 2.75) -> (30.2, 2.75)
  line L16 (30.2, 2.75) -> (30.2, 5)
  line L17 (30.2, 5) -> (5, 5)
  line L18 (5, 5) -> (5, 241.5)
  line L19 (5, 241.5) -> (240, 241.5)
  line L20 (0, 0) -> (50, 0)
  line L21 (50, 0) -> (62, 0)
  line L22 (62, 0) -> (62, -3)
  line L23 (62, -3) -> (50, -3)
  line L24 (50, -3) -> (50, 0)
  line L25 (56, -3) -> (56, -9)
  circle A4 centre (56, -9) radius 2.5
  circle A5 centre (56, -9) radius 6
  line L26 (50, -3) -> (50, -9)
  line L27 (62, -3) -> (62, -9)
  dimension "d101" = 50
  dimension "d102" = 12
  dimension "d103" = 3
  dimension "d104" = 6
  dimension "d105" = 5
extrude "Extrude21" add sketch "Sketch12" against normal blind 12 contours L0 L21 L22 L23 L24 | L23 A5 L26 | L23 A5 L27 | A5
sketch "Sketch14" plane through (0, 0, 0) normal (0, -1, 0) x (1, 0, 0)
  circle A0 centre (56, -9) radius 2.5
  line L0 (5, 0) -> (50, 0)
  line L1 (50, 0) -> (50, -3)
  line L2 (50, -3) -> (50, -9)
  arc A1 (50, -9) -> (62, -9) centre (56, -9) ccw
  line L3 (62, -9) -> (62, -3)
  line L4 (62, -3) -> (62, 0)
  line L5 (62, 0) -> (240, 0)
  arc A2 (240, 0) -> (245, 5) centre (240, 5) ccw
  line L6 (245, 5) -> (245, 240)
  arc A3 (245, 240) -> (240, 245) centre (240, 240) ccw
  line L7 (240, 245) -> (5, 245)
  arc A4 (5, 245) -> (0, 240) centre (5, 240) ccw
  line L8 (0, 240) -> (0, 5)
  arc A5 (0, 5) -> (5, 0) centre (5, 5) ccw
  line L9 (240, 241.5) -> (240, 167.8)
  line L10 (240, 167.8) -> (242.25, 167.8)
  line L11 (242.25, 167.8) -> (242.25, 162.2)
  line L12 (242.25, 162.2) -> (240, 162.2)
  line L13 (240, 162.2) -> (240, 9.3)
  line L14 (240, 9.3) -> (242.25, 9.3)
  line L15 (242.25, 9.3) -> (242.25, 2.75)
  line L16 (242.25, 2.75) -> (235.7, 2.75)
  line L17 (235.7, 2.75) -> (235.7, 5)
  line L18 (235.7, 5) -> (35.8, 5)
  line L19 (35.8, 5) -> (35.8, 2.75)
  line L20 (35.8, 2.75) -> (30.2, 2.75)
  line L21 (30.2, 2.75) -> (30.2, 5)
  line L22 (30.2, 5) -> (5, 5)
  line L23 (5, 5) -> (5, 241.5)
  line L24 (5, 241.5) -> (240, 241.5)
  line L25 (50, 0) -> (62, 0)
extrude "Extrude22" cut sketch "Sketch14" against normal blind 3 contours L1 L2 A1 L3 L4 L25
sketch "Sketch15" plane through (0, 0, 245) normal (0, 0, 1) x (1, 0, 0)
  line L0 (240, 0) -> (240, 15)
  line L1 (240, 15) -> (5, 15)
  line L2 (5, 15) -> (5, 0)
  line L3 (5, 0) -> (240, 0)
  line L4 (230, 15) -> (226, 15)
  line L5 (228, 15) -> (228, 13)
  circle A0 centre (228, 13) radius 2
  line L6 (226, 15) -> (226, 13)
  line L7 (230, 15) -> (230, 13)
  dimension "d110" = 4
  dimension "d111" = 2
extrude "Extrude23" cut sketch "Sketch15" against normal blind 8 contours L1 L4 A0 L7 | L1 L4 A0 L6 | A0
